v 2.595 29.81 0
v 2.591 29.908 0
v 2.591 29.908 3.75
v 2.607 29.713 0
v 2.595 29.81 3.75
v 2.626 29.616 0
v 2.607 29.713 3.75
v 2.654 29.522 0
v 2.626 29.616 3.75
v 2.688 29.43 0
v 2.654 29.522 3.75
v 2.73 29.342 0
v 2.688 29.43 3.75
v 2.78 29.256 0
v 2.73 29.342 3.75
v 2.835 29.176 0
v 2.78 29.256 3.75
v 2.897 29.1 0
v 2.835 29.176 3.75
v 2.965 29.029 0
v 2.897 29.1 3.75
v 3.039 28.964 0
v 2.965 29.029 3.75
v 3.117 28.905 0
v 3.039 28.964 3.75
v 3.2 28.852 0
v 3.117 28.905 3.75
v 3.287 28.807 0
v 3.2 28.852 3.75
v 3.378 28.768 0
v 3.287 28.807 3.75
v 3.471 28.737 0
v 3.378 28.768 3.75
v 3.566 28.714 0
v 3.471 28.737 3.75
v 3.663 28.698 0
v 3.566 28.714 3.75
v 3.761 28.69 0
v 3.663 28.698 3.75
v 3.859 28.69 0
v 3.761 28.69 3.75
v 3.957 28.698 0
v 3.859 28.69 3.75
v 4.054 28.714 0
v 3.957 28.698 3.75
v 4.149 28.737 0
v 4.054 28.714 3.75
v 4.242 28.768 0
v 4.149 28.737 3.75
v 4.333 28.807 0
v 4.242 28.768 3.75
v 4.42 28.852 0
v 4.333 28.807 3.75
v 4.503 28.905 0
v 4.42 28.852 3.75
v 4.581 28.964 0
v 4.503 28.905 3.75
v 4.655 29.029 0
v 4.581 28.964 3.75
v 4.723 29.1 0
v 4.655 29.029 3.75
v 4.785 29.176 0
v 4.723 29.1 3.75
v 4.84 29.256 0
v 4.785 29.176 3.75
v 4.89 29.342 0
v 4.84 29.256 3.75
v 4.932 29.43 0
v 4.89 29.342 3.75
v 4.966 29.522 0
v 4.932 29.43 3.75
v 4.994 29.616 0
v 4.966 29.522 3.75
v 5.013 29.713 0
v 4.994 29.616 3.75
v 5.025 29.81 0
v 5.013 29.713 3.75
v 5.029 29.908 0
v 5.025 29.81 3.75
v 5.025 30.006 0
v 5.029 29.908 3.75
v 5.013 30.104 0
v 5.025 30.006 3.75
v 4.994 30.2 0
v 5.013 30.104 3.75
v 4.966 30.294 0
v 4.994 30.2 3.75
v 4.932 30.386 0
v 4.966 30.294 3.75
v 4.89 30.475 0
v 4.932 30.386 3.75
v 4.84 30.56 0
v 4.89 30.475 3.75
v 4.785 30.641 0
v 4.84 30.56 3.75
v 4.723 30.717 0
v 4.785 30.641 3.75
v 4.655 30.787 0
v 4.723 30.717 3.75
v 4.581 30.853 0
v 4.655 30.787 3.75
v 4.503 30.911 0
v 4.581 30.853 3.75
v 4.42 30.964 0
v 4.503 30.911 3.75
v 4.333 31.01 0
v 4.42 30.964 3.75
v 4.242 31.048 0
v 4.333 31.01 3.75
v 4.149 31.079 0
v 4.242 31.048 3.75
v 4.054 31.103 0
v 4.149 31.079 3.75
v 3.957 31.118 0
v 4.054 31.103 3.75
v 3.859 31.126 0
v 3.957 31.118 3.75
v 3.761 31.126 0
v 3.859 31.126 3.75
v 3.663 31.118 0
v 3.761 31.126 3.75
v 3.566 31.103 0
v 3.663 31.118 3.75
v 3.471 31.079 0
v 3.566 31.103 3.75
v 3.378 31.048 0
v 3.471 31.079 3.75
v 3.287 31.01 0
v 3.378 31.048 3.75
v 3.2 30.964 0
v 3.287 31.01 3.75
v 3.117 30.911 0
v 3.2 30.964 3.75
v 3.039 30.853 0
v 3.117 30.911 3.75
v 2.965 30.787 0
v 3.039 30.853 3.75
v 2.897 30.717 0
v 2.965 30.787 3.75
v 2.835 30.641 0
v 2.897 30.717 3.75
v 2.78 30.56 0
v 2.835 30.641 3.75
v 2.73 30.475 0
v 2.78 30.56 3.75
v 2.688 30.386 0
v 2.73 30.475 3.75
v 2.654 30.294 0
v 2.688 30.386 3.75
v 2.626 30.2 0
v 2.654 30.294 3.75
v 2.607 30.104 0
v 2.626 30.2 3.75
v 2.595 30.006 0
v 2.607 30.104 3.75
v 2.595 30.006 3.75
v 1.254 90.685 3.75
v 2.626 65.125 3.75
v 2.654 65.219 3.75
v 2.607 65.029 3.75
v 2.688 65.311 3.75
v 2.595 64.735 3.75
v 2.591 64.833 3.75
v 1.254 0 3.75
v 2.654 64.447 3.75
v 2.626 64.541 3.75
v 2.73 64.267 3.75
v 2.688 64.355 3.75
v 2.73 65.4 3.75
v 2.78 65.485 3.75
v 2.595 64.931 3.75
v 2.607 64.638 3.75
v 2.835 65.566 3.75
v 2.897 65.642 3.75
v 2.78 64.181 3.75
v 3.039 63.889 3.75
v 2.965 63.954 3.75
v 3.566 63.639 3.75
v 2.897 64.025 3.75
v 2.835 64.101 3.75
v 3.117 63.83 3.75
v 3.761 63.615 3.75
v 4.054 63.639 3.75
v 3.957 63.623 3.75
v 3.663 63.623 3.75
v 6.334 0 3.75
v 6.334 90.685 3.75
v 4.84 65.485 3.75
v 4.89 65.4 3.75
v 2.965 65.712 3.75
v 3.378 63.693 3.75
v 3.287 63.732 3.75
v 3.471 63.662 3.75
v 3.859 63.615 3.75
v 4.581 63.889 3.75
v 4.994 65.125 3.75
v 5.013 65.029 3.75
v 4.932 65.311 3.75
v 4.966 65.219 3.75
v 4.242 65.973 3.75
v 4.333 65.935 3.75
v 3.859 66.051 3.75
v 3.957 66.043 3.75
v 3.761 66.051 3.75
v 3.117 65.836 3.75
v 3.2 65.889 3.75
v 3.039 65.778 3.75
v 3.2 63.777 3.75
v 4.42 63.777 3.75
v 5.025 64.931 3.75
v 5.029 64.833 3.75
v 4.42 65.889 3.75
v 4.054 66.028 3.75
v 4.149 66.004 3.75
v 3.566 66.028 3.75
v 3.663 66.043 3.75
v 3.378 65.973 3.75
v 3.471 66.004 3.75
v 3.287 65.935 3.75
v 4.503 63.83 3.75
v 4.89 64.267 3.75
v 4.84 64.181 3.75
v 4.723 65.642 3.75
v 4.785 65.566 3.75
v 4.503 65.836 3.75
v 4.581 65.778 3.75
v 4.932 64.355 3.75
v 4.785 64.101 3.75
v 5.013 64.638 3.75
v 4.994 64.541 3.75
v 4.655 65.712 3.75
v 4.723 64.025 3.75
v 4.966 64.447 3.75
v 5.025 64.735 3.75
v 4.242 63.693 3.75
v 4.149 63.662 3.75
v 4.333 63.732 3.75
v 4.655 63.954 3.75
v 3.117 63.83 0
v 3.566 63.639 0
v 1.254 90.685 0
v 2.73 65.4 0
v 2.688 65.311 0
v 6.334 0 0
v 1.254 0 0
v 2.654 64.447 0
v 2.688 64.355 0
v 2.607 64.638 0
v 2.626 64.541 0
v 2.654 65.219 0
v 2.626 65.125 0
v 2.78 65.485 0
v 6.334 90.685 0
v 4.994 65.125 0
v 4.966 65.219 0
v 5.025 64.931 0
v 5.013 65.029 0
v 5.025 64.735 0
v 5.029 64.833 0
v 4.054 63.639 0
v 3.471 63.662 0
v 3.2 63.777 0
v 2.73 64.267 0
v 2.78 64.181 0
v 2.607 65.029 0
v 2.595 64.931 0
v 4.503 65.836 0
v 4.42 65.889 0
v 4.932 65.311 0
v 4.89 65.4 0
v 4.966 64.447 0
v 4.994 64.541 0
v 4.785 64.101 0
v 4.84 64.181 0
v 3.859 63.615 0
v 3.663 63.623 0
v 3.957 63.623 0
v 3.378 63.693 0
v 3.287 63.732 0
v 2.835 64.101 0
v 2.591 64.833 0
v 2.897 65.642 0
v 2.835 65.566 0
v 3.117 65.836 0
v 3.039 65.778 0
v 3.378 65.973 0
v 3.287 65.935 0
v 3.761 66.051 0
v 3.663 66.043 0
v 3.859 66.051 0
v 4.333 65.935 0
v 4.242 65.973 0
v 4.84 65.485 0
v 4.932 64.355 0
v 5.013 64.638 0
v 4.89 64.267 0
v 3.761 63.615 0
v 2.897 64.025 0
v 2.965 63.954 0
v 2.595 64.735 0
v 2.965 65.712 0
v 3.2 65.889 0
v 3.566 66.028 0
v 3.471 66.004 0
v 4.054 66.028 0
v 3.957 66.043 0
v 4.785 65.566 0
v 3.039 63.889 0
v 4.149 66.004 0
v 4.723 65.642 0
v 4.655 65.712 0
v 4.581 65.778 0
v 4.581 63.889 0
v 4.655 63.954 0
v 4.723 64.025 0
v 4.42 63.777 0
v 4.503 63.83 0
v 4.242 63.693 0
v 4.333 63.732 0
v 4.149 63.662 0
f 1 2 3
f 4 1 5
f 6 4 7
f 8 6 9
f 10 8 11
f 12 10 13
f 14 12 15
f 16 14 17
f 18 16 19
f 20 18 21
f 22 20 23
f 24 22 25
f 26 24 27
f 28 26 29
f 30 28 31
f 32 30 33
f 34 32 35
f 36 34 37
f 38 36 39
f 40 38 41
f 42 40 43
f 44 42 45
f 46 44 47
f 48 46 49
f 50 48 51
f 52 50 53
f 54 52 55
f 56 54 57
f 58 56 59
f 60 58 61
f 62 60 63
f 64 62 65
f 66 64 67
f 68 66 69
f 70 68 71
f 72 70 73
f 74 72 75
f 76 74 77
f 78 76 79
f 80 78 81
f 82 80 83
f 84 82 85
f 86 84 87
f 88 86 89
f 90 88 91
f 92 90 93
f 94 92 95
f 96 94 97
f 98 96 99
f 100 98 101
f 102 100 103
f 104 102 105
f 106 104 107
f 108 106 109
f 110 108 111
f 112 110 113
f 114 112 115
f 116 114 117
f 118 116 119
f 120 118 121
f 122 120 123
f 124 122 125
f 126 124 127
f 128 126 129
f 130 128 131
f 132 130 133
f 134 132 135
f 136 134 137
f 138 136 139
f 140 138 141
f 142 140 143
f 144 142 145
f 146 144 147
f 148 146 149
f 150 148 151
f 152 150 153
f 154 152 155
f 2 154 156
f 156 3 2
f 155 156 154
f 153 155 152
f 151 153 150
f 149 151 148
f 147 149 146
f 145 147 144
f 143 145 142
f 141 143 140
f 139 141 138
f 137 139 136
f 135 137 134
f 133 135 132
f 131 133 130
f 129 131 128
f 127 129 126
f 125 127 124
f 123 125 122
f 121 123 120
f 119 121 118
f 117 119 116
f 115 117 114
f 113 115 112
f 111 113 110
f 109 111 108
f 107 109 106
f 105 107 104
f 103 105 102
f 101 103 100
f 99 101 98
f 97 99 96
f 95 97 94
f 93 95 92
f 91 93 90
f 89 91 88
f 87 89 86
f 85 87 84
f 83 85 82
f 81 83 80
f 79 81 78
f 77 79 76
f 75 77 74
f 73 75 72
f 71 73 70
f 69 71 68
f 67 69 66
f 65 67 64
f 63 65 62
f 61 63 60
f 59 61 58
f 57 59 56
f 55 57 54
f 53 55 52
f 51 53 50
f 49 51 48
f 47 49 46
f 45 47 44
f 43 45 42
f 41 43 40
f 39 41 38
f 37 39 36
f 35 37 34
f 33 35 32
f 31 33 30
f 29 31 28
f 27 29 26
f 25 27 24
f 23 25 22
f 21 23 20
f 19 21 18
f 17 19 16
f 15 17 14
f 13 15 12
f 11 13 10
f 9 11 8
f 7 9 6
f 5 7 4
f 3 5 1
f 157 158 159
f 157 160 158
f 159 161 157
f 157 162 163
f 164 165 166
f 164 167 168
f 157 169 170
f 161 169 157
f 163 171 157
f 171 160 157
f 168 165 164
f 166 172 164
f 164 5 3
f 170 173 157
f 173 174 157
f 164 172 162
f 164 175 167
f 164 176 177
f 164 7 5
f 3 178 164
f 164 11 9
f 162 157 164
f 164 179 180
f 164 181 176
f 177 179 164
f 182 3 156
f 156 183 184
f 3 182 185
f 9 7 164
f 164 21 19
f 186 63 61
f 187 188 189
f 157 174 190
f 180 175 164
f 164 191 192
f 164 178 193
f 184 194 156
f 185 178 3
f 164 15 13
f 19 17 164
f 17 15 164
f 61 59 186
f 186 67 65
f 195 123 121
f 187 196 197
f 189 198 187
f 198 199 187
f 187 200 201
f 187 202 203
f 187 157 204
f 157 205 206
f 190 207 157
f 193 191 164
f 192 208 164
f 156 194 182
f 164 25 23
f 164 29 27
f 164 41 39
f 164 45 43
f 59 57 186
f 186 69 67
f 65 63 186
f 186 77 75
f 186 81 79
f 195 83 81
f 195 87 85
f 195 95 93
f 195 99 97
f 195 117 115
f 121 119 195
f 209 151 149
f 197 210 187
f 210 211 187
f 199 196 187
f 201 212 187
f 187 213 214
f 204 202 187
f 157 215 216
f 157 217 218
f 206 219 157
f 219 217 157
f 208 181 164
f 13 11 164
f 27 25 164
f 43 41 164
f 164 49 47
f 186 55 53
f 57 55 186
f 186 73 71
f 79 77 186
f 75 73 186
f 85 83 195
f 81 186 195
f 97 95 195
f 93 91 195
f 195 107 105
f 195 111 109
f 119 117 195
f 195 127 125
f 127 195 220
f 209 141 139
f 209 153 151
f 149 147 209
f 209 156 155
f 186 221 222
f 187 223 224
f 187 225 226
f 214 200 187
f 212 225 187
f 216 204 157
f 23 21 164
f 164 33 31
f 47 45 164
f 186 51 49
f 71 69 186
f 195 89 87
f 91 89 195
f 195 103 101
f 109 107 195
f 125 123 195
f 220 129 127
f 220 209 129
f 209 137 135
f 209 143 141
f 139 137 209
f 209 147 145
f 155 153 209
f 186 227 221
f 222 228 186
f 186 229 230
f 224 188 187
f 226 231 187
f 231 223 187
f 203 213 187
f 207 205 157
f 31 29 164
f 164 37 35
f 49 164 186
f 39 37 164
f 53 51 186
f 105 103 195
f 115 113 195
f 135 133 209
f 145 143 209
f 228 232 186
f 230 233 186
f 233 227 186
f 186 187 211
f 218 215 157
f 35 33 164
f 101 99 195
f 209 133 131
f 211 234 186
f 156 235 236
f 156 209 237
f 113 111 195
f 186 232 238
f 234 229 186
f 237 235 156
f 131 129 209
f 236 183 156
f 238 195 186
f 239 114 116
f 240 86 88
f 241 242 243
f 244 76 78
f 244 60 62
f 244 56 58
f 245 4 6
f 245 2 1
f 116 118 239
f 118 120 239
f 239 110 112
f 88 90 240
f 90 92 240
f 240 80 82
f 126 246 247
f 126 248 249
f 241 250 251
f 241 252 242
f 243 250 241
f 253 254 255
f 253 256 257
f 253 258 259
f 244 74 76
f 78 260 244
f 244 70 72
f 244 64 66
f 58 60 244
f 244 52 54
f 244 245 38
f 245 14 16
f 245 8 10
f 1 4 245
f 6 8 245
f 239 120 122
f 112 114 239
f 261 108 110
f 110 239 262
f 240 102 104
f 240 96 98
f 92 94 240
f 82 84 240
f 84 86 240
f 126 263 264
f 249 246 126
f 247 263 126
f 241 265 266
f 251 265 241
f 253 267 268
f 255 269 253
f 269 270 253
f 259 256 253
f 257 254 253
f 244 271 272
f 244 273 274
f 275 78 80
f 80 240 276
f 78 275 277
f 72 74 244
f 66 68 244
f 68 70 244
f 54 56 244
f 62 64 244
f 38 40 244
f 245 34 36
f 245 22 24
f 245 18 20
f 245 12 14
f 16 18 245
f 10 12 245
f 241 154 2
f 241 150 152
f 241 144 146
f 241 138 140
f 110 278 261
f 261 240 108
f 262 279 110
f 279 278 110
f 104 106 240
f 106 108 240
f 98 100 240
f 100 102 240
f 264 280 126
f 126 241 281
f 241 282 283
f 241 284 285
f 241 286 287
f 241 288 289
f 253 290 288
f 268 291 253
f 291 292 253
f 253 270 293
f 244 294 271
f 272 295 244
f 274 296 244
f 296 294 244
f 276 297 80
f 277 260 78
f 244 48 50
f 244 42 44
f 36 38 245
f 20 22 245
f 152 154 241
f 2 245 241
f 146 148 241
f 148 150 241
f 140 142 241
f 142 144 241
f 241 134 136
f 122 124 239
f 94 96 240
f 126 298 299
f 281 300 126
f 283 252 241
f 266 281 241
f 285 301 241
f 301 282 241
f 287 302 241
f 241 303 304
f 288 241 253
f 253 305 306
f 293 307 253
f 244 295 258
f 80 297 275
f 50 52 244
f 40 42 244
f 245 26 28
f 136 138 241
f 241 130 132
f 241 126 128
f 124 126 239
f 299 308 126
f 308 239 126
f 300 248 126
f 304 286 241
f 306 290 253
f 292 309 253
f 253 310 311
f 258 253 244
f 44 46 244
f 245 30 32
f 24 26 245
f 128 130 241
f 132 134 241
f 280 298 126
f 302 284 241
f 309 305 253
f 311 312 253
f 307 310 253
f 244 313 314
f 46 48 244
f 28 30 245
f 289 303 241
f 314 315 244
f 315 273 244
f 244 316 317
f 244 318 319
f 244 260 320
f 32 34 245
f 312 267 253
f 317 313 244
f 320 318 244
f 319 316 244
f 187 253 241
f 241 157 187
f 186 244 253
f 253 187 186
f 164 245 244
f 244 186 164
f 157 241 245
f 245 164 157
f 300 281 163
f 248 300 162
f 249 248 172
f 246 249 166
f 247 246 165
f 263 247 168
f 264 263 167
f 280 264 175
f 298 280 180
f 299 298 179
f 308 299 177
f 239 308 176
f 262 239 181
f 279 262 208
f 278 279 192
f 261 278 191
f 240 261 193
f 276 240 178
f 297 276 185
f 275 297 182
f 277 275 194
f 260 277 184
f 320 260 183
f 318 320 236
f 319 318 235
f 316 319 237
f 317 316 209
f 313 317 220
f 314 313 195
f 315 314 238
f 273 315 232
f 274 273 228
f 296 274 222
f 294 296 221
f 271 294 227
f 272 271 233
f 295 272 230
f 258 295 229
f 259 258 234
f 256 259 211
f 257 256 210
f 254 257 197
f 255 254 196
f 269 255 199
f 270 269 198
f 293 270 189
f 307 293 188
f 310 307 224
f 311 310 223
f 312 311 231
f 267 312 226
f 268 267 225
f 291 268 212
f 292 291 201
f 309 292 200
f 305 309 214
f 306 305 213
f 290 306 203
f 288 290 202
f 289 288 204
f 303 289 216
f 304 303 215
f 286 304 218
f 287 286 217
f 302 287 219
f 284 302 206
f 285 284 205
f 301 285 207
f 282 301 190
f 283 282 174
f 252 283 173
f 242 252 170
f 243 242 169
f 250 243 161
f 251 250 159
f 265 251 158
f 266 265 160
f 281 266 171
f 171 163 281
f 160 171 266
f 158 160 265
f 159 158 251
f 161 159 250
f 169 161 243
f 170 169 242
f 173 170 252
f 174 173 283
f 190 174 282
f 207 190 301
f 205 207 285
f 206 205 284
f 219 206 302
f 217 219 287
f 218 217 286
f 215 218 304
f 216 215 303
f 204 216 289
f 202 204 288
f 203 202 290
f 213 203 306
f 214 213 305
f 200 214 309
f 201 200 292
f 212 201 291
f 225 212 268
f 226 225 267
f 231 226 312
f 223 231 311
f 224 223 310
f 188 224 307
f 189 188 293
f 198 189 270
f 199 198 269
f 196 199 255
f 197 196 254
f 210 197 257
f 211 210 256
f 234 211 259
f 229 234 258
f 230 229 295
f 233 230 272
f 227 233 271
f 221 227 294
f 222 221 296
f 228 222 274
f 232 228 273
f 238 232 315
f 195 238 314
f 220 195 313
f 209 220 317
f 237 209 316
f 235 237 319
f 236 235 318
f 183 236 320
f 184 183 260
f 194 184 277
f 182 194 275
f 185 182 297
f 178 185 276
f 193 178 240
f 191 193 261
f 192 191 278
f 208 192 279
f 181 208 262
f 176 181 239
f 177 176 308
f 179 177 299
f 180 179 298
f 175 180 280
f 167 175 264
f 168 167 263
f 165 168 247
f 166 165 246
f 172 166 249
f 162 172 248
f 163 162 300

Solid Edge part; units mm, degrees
sketch "Sketch1" plane through (0, 0, 0) normal (0, 0, 1) x (1, 0, 0)
  circle A0 centre (3.81, 29.9081) radius 1.2192
  circle A1 centre (3.81, 64.8331) radius 1.2192
  line L0 (6.334, 90.6845) -> (6.334, 0)
  line L1 (6.334, 0) -> (1.254, 0)
  line L2 (1.254, 0) -> (1.254, 90.6845)
  line L3 (1.254, 90.6845) -> (6.334, 90.6845)
  dimension "D1" = 0.254
  dimension "D2" = 5.08
extrude "Protrusion1" add sketch "Sketch1" along normal up to vertex (3.75 mm away)
